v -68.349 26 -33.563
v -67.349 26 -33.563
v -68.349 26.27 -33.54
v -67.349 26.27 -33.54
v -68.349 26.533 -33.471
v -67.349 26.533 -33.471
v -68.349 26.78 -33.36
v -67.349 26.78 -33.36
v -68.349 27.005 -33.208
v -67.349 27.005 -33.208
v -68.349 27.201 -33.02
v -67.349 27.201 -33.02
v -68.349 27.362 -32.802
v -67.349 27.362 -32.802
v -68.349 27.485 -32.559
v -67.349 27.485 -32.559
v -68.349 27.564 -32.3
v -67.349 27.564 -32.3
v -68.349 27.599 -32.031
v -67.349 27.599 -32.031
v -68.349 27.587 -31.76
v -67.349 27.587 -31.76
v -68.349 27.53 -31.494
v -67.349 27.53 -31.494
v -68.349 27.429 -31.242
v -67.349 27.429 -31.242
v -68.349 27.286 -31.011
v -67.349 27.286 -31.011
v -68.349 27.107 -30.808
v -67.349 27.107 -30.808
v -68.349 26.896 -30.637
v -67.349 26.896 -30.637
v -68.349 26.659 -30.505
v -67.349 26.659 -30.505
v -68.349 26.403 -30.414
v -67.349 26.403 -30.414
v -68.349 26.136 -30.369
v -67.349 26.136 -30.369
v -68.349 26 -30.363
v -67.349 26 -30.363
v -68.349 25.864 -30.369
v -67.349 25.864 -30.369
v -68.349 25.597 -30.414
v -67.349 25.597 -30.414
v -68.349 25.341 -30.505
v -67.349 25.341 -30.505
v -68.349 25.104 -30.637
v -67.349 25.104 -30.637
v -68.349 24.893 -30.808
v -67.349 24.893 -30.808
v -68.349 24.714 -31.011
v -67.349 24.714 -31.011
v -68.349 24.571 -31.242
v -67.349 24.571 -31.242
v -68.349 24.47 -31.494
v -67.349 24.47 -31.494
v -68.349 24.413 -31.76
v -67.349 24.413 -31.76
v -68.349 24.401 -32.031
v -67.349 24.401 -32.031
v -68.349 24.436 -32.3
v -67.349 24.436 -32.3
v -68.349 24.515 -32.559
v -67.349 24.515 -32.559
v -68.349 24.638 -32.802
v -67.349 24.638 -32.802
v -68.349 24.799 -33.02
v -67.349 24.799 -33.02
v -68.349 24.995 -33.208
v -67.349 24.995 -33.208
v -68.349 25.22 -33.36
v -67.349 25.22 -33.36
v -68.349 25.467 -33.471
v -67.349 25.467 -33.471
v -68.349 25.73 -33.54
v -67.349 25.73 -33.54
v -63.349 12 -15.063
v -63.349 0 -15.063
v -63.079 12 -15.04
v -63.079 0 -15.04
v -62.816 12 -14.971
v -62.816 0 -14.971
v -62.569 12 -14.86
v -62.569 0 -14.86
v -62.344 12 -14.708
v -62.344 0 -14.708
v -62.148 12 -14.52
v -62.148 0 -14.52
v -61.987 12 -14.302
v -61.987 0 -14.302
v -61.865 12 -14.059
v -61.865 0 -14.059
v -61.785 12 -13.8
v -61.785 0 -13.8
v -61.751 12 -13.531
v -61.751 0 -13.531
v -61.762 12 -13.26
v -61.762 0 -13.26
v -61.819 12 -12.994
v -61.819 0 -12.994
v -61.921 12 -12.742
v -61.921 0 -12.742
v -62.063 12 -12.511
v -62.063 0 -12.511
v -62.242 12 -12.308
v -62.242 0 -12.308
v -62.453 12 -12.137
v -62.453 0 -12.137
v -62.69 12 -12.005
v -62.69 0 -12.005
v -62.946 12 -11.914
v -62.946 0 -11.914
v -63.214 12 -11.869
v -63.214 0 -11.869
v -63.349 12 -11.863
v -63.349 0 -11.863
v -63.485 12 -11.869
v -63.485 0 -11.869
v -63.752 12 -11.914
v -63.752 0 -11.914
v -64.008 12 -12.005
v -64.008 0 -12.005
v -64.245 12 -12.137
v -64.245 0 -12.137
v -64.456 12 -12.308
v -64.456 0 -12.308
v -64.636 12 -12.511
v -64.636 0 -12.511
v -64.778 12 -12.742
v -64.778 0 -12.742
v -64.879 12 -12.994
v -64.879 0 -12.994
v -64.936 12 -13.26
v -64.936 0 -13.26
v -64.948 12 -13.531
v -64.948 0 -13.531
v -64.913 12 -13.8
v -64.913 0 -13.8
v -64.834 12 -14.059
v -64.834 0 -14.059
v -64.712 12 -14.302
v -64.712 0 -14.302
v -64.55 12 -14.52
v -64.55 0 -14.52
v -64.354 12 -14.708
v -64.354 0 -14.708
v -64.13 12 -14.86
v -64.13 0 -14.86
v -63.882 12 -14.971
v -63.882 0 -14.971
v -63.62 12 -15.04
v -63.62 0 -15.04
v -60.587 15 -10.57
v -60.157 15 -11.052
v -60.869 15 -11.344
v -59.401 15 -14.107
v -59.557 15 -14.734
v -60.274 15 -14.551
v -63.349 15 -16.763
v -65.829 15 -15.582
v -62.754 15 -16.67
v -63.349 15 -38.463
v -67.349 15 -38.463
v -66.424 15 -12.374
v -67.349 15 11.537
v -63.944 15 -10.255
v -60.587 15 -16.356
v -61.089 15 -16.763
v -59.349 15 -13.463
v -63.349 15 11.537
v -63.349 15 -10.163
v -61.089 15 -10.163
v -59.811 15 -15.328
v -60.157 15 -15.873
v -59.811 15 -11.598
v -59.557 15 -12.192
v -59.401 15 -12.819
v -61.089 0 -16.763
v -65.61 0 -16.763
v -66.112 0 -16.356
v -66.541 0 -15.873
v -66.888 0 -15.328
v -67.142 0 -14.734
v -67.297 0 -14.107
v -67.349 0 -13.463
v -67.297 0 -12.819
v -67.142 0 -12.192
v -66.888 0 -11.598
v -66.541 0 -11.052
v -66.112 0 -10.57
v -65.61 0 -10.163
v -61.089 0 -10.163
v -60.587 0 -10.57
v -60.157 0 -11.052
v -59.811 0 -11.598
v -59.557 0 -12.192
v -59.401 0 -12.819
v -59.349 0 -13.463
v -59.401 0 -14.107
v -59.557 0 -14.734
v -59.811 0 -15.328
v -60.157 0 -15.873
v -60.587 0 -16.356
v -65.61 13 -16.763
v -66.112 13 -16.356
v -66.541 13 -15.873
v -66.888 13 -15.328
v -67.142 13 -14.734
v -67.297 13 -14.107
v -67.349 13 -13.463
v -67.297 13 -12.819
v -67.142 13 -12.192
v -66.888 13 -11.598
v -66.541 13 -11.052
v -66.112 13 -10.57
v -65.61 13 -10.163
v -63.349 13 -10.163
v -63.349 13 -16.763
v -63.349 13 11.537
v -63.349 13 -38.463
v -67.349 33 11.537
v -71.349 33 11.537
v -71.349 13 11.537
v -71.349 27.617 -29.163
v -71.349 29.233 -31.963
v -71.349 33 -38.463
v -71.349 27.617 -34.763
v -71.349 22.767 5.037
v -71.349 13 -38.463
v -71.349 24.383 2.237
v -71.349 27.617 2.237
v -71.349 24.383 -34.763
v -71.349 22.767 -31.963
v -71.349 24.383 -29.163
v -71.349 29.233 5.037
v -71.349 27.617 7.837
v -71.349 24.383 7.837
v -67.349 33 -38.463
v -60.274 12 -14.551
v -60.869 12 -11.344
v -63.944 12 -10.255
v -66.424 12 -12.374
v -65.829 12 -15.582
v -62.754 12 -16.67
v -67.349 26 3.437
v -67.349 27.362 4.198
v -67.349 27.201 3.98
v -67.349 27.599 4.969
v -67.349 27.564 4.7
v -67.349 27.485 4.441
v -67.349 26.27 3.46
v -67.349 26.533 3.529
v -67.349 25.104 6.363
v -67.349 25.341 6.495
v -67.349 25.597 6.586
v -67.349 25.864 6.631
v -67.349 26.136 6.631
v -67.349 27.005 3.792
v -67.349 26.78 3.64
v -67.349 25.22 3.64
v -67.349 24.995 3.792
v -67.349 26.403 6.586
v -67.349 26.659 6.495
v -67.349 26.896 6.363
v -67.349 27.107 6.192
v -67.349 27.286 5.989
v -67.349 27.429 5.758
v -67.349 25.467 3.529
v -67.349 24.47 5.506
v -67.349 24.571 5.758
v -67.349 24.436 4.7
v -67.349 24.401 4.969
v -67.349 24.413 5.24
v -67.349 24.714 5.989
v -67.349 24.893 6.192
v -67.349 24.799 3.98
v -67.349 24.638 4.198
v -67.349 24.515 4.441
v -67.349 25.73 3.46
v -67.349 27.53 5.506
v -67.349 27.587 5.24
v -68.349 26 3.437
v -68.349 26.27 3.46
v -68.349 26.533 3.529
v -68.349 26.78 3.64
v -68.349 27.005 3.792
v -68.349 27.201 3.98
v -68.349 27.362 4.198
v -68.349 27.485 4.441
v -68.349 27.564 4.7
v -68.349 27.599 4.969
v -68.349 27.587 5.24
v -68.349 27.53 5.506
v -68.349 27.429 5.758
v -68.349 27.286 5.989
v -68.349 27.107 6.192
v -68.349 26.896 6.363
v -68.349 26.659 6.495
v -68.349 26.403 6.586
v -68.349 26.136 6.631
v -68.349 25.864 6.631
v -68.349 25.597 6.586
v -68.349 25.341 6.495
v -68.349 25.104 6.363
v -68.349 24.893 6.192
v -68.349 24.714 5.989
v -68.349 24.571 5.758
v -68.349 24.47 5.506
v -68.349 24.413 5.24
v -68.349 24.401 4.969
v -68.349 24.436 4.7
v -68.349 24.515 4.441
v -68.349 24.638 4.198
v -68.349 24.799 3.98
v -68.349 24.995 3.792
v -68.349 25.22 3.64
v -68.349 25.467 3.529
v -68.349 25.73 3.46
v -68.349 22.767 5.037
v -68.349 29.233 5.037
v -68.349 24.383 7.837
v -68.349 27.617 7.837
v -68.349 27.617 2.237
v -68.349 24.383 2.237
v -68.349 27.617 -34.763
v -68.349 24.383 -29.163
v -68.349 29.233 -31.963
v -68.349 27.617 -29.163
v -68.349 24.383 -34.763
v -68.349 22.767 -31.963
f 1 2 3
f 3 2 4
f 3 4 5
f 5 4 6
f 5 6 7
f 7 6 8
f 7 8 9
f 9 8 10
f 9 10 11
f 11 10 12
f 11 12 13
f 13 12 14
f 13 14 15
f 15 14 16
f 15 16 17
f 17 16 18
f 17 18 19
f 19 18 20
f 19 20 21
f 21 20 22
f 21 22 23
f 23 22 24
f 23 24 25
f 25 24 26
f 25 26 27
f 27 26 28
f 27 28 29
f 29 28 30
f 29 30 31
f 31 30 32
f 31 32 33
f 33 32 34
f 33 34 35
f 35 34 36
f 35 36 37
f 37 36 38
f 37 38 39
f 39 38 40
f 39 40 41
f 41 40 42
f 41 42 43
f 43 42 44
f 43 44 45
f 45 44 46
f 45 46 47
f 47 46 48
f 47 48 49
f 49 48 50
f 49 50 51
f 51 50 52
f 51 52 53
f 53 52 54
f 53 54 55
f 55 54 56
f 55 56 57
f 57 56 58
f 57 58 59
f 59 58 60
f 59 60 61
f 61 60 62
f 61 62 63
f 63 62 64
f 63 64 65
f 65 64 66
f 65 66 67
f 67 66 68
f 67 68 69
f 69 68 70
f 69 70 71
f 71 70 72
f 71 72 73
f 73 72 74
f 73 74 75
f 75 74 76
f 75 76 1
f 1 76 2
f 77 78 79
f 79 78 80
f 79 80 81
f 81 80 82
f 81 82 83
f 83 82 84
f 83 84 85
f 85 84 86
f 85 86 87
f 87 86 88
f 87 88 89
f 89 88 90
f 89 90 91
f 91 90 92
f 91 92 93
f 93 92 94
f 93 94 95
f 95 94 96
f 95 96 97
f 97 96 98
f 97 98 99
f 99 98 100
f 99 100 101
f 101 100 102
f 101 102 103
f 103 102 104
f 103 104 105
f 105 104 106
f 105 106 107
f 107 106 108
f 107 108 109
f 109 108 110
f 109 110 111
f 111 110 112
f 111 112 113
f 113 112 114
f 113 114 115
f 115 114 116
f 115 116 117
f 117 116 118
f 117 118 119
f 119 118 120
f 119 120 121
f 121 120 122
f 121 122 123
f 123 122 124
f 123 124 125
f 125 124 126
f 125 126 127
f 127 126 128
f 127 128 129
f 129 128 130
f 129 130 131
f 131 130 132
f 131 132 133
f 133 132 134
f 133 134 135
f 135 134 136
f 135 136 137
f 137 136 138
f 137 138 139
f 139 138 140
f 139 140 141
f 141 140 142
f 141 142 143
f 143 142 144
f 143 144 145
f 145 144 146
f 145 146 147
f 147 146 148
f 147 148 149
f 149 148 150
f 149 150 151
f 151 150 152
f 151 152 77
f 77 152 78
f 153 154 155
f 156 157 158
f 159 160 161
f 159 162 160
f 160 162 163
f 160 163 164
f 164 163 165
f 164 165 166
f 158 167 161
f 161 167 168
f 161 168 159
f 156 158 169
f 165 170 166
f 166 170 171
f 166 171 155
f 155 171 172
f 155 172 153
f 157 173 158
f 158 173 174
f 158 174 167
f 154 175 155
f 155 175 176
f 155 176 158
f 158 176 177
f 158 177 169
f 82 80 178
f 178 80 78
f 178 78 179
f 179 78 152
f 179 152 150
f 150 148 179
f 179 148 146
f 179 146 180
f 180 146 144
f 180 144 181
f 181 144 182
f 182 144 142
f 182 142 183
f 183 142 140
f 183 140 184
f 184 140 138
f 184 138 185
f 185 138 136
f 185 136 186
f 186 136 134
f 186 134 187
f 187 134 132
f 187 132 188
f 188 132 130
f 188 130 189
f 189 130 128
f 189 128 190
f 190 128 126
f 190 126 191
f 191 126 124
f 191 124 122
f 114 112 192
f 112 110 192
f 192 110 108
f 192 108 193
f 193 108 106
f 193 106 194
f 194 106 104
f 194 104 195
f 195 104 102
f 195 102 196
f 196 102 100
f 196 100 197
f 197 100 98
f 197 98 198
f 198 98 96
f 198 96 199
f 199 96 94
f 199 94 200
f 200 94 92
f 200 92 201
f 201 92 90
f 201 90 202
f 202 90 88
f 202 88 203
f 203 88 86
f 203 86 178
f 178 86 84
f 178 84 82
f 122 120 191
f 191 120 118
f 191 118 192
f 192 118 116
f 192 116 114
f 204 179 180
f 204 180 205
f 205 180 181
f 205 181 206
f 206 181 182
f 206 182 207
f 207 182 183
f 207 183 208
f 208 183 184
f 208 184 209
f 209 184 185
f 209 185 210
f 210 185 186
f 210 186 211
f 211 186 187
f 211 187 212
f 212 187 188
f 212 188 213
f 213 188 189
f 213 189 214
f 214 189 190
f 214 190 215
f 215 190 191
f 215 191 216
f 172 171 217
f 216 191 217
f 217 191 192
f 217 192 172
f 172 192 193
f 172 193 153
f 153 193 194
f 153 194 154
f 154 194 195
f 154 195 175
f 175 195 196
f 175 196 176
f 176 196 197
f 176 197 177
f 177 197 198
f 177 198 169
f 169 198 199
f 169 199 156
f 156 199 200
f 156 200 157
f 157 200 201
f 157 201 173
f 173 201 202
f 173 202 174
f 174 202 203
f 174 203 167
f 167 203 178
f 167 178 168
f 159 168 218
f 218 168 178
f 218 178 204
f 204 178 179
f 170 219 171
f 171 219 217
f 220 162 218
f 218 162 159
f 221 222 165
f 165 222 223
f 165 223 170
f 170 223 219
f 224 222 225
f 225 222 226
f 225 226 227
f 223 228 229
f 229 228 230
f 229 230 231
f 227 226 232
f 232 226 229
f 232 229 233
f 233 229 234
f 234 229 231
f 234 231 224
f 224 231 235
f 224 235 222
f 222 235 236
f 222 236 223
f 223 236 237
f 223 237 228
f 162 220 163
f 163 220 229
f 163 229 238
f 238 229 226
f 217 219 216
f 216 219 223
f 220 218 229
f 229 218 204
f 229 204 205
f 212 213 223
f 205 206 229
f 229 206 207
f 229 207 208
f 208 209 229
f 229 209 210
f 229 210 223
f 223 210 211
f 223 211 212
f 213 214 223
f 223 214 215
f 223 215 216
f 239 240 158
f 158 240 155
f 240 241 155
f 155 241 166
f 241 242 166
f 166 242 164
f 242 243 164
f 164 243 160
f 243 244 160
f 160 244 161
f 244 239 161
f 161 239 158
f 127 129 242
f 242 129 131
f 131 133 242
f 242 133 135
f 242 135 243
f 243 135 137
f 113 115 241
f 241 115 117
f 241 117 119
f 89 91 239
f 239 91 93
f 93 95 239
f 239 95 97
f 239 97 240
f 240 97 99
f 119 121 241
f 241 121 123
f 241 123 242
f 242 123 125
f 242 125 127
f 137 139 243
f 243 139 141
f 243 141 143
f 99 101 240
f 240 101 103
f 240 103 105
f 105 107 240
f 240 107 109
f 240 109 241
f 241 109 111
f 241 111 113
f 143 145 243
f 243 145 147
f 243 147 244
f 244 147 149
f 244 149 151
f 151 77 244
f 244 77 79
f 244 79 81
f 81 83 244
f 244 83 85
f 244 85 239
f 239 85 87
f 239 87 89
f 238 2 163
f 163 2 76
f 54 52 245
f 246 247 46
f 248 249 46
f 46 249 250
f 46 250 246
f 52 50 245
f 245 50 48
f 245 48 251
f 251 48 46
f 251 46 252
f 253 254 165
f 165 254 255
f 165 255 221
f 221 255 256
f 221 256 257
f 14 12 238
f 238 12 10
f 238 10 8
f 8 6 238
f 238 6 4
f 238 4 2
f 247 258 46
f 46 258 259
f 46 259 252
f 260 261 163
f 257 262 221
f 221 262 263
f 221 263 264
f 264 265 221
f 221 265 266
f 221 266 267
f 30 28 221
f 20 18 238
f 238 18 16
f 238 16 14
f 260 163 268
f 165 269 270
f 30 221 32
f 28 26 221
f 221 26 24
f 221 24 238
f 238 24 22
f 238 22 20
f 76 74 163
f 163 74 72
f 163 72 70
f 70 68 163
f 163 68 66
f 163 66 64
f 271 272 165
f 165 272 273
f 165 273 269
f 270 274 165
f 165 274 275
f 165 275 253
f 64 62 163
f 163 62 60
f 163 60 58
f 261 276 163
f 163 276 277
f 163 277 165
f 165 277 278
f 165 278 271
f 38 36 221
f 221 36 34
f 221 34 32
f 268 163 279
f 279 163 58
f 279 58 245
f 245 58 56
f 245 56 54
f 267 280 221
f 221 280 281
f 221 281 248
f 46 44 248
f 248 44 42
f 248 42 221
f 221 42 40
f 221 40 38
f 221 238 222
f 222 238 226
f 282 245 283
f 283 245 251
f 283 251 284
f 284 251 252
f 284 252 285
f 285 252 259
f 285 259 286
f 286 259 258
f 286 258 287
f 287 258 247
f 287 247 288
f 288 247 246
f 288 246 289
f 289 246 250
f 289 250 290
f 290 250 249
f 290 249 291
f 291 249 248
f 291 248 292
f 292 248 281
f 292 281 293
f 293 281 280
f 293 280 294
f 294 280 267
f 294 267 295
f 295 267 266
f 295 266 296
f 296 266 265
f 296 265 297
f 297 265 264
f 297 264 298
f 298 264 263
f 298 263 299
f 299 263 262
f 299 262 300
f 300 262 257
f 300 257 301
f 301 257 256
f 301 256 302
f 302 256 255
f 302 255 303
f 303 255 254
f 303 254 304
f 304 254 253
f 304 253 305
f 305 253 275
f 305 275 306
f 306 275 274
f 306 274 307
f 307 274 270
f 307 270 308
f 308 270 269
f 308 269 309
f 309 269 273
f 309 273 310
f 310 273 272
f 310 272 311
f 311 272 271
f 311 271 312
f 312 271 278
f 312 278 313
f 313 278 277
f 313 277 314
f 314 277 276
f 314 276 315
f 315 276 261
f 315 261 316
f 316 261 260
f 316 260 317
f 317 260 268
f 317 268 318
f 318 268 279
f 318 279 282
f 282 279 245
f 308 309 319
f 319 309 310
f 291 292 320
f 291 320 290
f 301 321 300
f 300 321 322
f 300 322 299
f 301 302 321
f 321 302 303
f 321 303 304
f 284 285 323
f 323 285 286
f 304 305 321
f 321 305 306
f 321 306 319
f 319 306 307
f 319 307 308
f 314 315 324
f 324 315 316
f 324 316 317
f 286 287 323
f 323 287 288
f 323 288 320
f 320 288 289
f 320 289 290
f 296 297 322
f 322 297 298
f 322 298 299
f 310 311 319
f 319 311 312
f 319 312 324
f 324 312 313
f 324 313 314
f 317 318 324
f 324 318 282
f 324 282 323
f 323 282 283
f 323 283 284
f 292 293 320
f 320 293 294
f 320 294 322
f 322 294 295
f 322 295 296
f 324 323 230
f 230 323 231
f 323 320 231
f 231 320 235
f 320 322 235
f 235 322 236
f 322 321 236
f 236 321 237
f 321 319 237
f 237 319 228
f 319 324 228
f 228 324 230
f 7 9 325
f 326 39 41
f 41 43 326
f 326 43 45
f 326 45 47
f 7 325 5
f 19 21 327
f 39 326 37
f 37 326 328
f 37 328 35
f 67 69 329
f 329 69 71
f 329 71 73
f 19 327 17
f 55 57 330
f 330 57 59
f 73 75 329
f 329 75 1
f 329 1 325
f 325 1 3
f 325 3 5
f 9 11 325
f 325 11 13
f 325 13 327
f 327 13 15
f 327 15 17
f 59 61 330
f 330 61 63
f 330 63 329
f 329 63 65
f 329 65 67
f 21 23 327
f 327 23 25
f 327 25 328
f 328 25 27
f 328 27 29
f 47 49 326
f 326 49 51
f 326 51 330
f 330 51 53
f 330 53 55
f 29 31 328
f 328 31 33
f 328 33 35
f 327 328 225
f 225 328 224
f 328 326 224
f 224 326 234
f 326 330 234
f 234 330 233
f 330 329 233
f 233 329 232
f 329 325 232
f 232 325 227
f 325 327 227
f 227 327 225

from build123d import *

# Parameters (mm, degrees)
CROQUIS5_R              = 1.6
SALIENTE_EXTRUIR3_DEPTH = 15
SALIENTE_EXTRUIR5_DEPTH = 2
CORTAR_EXTRUIR3_DEPTH   = 3
CROQUIS10_W             = 4
CROQUIS10_H             = 50
SALIENTE_EXTRUIR6_DEPTH = 18
CROQUIS17_R             = 1.6
CORTAR_EXTRUIR4_DEPTH   = 4
CORTAR_EXTRUIR6_DEPTH   = 3


with BuildPart() as part:
    # Croquis5 → Saliente-Extruir3 (new body)
    with BuildSketch(Plane(origin=(0, 0, 0), x_dir=(1, 0, 0), z_dir=(0, 1, 0))):
        with BuildLine():
            Line((-65.609813571, 16.762782914), (-61.088751749, 16.762782914))
            ThreePointArc((-61.088751749, 16.762782914), (-59.34928266, 13.462782914), (-61.088751749, 10.162782914))
            Line((-61.088751749, 10.162782914), (-65.609813571, 10.162782914))
            ThreePointArc((-65.609813571, 10.162782914), (-67.34928266, 13.462782914), (-65.609813571, 16.762782914))
        make_face()
        with Locations(Location((-63.34928266, 13.462782914, 0), (0, 0, 270))):
            Circle(CROQUIS5_R, mode=Mode.SUBTRACT)
    extrude(amount=SALIENTE_EXTRUIR3_DEPTH)

    # Croquis7 → Saliente-Extruir5 (add)
    with BuildSketch(Plane(origin=(0, 15, 0), x_dir=(1, 0, 0), z_dir=(0, 1, 0))):
        Polygon((-63.34928266, 13.462782914), (-63.34928266, -11.537217086), (-71.34928266, -11.537217086), (-71.34928266, 38.462782914), (-63.34928266, 38.462782914), align=None)
    extrude(amount=-SALIENTE_EXTRUIR5_DEPTH)

    # Croquis9 → Cortar-Extruir3 (cut)
    with BuildSketch(Plane(origin=(0, 15, 0), x_dir=(1, 0, 0), z_dir=(0, 1, 0))):
        Polygon((-60.274222832, 14.551286652), (-62.754424635, 16.670114712), (-65.829484463, 15.581610975), (-66.424342488, 12.374279177), (-63.944140685, 10.255451116), (-60.869080857, 11.343954853), align=None)
    extrude(amount=-CORTAR_EXTRUIR3_DEPTH, mode=Mode.SUBTRACT)

    # Croquis10 → Saliente-Extruir6 (add)
    with BuildSketch(Plane(origin=(0, 15, 0), x_dir=(1, 0, 0), z_dir=(0, 1, 0))):
        with Locations((-69.34928266, 13.462782914)):
            Rectangle(CROQUIS10_W, CROQUIS10_H)
    extrude(amount=SALIENTE_EXTRUIR6_DEPTH)

    # Croquis17 → Cortar-Extruir4 (cut)
    with BuildSketch(Plane(origin=(-67.34928266, 0, 0), x_dir=(0, 0, -1), z_dir=(1, 0, 0))):
        with Locations((-5.037217086, 26)):
            Circle(CROQUIS17_R)
        with Locations(Location((31.962782914, 26, 0), (0, 0, 180))):
            Circle(CROQUIS17_R)
    extrude(amount=-CORTAR_EXTRUIR4_DEPTH, mode=Mode.SUBTRACT)

    # Croquis19 → Cortar-Extruir6 (cut)
    with BuildSketch(Plane.ZY.offset(71.34928266)):
        Polygon((-31.962782914, 29.233161507), (-34.762782914, 27.616580754), (-34.762782914, 24.383419246), (-31.962782914, 22.766838493), (-29.162782914, 24.383419246), (-29.162782914, 27.616580754), align=None)
        Polygon((2.237217086, 27.616580754), (5.037217086, 29.233161507), (7.837217086, 27.616580754), (7.837217086, 24.383419246), (5.037217086, 22.766838493), (2.237217086, 24.383419246), align=None)
    extrude(amount=-CORTAR_EXTRUIR6_DEPTH, mode=Mode.SUBTRACT)


solid = part.part
